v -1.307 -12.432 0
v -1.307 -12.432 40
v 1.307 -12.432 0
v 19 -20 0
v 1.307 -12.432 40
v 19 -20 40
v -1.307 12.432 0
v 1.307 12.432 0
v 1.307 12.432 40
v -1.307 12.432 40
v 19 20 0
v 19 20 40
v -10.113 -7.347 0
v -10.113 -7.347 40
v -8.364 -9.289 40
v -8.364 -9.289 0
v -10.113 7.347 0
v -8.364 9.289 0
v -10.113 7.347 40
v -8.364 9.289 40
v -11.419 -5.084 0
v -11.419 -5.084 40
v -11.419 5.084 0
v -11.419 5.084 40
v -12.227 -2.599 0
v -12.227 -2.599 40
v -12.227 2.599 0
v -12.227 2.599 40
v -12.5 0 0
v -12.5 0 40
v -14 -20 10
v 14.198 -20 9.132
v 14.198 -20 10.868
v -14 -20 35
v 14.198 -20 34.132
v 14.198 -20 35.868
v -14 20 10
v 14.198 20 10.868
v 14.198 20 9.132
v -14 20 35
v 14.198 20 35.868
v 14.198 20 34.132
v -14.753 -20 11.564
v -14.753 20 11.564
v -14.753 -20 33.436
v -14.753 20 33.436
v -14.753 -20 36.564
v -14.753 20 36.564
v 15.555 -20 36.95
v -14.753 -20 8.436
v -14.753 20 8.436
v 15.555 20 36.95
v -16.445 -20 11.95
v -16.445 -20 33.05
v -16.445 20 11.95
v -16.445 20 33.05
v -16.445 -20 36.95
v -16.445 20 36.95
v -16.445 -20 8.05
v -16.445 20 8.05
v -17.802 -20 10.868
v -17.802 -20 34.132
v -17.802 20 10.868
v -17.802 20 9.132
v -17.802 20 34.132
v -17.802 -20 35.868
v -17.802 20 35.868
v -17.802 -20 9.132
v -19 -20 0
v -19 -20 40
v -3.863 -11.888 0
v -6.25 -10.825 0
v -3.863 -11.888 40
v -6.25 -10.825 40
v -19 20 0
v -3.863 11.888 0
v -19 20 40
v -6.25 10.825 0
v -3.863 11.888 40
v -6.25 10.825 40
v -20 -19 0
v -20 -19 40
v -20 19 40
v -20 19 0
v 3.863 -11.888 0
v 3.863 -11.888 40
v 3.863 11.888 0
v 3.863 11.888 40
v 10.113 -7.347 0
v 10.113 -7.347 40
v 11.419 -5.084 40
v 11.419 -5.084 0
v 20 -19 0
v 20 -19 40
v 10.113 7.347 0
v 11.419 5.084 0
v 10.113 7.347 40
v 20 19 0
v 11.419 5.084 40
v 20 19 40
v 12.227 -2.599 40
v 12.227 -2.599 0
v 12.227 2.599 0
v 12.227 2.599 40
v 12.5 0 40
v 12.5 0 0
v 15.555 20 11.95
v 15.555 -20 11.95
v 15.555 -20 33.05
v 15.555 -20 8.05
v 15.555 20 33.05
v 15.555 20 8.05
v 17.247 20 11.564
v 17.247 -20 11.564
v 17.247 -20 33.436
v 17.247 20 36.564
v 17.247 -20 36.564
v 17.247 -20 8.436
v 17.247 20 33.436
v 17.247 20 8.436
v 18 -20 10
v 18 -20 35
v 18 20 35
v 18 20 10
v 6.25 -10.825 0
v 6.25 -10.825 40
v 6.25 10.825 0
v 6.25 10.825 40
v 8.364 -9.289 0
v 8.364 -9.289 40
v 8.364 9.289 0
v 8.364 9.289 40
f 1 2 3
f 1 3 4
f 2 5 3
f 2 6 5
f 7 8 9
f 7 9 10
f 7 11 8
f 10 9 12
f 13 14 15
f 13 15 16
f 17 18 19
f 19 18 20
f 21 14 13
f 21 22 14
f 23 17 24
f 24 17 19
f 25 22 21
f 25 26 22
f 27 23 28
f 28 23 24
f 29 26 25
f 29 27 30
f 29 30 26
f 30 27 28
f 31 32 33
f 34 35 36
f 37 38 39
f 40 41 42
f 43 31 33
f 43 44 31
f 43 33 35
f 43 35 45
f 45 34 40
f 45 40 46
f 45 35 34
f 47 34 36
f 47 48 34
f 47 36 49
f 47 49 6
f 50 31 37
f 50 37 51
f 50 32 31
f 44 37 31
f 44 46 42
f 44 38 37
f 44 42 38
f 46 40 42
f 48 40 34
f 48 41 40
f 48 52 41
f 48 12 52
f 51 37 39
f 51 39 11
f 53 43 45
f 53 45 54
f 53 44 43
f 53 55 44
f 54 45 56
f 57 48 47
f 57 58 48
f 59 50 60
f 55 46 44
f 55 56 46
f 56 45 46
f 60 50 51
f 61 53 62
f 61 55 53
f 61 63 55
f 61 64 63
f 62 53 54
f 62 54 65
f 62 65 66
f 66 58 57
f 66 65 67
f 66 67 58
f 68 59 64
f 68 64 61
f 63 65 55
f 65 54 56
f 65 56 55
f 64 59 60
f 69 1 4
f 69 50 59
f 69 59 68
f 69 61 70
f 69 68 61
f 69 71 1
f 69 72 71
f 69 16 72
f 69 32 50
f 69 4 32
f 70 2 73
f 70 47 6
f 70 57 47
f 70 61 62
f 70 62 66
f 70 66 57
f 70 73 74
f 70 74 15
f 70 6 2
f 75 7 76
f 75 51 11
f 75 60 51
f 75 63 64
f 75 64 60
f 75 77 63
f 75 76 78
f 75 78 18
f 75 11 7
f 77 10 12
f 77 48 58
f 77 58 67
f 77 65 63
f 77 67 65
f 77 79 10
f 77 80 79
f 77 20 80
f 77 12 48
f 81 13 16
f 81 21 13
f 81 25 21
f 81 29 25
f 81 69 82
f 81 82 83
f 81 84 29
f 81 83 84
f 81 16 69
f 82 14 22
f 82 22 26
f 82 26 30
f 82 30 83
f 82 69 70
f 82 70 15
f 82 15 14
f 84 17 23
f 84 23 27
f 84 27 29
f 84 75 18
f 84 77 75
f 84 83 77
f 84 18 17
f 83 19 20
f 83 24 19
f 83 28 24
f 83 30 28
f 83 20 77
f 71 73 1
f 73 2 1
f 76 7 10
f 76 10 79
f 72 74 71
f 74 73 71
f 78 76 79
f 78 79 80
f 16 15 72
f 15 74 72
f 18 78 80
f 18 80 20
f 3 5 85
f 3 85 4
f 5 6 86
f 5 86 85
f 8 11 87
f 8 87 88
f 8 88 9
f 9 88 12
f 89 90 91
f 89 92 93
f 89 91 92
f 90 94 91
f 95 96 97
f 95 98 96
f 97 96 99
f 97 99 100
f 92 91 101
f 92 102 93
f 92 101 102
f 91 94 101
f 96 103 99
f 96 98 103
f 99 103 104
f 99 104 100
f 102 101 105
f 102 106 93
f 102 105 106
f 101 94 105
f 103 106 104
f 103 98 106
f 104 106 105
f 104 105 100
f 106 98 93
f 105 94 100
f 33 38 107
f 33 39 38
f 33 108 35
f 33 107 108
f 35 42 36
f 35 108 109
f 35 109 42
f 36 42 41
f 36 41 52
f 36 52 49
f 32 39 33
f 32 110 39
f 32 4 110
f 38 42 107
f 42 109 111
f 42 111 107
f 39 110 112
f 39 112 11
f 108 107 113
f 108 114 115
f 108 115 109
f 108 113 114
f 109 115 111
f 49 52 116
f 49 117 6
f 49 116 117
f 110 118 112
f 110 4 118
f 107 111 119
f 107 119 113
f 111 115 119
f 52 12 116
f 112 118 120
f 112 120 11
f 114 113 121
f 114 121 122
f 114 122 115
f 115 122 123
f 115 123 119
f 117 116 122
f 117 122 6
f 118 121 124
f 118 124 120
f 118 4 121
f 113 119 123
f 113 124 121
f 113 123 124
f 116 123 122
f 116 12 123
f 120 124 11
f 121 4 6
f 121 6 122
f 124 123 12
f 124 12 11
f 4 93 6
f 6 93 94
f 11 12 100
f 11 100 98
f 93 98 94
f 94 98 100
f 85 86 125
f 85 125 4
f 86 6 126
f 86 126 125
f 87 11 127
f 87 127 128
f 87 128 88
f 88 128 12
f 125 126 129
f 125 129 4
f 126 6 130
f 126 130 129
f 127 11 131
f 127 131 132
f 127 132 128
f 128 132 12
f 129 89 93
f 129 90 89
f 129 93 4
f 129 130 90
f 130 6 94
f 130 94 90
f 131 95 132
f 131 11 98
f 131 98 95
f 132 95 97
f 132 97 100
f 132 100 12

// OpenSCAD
difference (){
translate([-20,-20,0])
cube ([40,40,40]);
	
	cylinder(h=40,r1=12.5,r2=12.5);

	translate([16,20,35])
	rotate([90,0,0])
	cylinder(h=40,r1=2,r2=2);

	translate([-16,20,35])
	rotate([90,0,0])
	cylinder(h=40,r1=2,r2=2);

	translate([16,20,10])
	rotate([90,0,0])
	cylinder(h=40,r1=2,r2=2);


	translate([-16,20,10])
	rotate([90,0,0])
	cylinder(h=40,r1=2,r2=2);

	translate([20,19,0])
	rotate([0,0,45])
	cube([28.28,28.28,40]);

	translate([-20,19,0])
	rotate([0,0,45])
	cube([28.28,28.28,40]);

	translate([-20,-47.28,0])
	rotate([0,0,45])
	cube([20,20,40]);

	translate([20,-47.28,0])
	rotate([0,0,45])
	cube([20,20,40]);
}
